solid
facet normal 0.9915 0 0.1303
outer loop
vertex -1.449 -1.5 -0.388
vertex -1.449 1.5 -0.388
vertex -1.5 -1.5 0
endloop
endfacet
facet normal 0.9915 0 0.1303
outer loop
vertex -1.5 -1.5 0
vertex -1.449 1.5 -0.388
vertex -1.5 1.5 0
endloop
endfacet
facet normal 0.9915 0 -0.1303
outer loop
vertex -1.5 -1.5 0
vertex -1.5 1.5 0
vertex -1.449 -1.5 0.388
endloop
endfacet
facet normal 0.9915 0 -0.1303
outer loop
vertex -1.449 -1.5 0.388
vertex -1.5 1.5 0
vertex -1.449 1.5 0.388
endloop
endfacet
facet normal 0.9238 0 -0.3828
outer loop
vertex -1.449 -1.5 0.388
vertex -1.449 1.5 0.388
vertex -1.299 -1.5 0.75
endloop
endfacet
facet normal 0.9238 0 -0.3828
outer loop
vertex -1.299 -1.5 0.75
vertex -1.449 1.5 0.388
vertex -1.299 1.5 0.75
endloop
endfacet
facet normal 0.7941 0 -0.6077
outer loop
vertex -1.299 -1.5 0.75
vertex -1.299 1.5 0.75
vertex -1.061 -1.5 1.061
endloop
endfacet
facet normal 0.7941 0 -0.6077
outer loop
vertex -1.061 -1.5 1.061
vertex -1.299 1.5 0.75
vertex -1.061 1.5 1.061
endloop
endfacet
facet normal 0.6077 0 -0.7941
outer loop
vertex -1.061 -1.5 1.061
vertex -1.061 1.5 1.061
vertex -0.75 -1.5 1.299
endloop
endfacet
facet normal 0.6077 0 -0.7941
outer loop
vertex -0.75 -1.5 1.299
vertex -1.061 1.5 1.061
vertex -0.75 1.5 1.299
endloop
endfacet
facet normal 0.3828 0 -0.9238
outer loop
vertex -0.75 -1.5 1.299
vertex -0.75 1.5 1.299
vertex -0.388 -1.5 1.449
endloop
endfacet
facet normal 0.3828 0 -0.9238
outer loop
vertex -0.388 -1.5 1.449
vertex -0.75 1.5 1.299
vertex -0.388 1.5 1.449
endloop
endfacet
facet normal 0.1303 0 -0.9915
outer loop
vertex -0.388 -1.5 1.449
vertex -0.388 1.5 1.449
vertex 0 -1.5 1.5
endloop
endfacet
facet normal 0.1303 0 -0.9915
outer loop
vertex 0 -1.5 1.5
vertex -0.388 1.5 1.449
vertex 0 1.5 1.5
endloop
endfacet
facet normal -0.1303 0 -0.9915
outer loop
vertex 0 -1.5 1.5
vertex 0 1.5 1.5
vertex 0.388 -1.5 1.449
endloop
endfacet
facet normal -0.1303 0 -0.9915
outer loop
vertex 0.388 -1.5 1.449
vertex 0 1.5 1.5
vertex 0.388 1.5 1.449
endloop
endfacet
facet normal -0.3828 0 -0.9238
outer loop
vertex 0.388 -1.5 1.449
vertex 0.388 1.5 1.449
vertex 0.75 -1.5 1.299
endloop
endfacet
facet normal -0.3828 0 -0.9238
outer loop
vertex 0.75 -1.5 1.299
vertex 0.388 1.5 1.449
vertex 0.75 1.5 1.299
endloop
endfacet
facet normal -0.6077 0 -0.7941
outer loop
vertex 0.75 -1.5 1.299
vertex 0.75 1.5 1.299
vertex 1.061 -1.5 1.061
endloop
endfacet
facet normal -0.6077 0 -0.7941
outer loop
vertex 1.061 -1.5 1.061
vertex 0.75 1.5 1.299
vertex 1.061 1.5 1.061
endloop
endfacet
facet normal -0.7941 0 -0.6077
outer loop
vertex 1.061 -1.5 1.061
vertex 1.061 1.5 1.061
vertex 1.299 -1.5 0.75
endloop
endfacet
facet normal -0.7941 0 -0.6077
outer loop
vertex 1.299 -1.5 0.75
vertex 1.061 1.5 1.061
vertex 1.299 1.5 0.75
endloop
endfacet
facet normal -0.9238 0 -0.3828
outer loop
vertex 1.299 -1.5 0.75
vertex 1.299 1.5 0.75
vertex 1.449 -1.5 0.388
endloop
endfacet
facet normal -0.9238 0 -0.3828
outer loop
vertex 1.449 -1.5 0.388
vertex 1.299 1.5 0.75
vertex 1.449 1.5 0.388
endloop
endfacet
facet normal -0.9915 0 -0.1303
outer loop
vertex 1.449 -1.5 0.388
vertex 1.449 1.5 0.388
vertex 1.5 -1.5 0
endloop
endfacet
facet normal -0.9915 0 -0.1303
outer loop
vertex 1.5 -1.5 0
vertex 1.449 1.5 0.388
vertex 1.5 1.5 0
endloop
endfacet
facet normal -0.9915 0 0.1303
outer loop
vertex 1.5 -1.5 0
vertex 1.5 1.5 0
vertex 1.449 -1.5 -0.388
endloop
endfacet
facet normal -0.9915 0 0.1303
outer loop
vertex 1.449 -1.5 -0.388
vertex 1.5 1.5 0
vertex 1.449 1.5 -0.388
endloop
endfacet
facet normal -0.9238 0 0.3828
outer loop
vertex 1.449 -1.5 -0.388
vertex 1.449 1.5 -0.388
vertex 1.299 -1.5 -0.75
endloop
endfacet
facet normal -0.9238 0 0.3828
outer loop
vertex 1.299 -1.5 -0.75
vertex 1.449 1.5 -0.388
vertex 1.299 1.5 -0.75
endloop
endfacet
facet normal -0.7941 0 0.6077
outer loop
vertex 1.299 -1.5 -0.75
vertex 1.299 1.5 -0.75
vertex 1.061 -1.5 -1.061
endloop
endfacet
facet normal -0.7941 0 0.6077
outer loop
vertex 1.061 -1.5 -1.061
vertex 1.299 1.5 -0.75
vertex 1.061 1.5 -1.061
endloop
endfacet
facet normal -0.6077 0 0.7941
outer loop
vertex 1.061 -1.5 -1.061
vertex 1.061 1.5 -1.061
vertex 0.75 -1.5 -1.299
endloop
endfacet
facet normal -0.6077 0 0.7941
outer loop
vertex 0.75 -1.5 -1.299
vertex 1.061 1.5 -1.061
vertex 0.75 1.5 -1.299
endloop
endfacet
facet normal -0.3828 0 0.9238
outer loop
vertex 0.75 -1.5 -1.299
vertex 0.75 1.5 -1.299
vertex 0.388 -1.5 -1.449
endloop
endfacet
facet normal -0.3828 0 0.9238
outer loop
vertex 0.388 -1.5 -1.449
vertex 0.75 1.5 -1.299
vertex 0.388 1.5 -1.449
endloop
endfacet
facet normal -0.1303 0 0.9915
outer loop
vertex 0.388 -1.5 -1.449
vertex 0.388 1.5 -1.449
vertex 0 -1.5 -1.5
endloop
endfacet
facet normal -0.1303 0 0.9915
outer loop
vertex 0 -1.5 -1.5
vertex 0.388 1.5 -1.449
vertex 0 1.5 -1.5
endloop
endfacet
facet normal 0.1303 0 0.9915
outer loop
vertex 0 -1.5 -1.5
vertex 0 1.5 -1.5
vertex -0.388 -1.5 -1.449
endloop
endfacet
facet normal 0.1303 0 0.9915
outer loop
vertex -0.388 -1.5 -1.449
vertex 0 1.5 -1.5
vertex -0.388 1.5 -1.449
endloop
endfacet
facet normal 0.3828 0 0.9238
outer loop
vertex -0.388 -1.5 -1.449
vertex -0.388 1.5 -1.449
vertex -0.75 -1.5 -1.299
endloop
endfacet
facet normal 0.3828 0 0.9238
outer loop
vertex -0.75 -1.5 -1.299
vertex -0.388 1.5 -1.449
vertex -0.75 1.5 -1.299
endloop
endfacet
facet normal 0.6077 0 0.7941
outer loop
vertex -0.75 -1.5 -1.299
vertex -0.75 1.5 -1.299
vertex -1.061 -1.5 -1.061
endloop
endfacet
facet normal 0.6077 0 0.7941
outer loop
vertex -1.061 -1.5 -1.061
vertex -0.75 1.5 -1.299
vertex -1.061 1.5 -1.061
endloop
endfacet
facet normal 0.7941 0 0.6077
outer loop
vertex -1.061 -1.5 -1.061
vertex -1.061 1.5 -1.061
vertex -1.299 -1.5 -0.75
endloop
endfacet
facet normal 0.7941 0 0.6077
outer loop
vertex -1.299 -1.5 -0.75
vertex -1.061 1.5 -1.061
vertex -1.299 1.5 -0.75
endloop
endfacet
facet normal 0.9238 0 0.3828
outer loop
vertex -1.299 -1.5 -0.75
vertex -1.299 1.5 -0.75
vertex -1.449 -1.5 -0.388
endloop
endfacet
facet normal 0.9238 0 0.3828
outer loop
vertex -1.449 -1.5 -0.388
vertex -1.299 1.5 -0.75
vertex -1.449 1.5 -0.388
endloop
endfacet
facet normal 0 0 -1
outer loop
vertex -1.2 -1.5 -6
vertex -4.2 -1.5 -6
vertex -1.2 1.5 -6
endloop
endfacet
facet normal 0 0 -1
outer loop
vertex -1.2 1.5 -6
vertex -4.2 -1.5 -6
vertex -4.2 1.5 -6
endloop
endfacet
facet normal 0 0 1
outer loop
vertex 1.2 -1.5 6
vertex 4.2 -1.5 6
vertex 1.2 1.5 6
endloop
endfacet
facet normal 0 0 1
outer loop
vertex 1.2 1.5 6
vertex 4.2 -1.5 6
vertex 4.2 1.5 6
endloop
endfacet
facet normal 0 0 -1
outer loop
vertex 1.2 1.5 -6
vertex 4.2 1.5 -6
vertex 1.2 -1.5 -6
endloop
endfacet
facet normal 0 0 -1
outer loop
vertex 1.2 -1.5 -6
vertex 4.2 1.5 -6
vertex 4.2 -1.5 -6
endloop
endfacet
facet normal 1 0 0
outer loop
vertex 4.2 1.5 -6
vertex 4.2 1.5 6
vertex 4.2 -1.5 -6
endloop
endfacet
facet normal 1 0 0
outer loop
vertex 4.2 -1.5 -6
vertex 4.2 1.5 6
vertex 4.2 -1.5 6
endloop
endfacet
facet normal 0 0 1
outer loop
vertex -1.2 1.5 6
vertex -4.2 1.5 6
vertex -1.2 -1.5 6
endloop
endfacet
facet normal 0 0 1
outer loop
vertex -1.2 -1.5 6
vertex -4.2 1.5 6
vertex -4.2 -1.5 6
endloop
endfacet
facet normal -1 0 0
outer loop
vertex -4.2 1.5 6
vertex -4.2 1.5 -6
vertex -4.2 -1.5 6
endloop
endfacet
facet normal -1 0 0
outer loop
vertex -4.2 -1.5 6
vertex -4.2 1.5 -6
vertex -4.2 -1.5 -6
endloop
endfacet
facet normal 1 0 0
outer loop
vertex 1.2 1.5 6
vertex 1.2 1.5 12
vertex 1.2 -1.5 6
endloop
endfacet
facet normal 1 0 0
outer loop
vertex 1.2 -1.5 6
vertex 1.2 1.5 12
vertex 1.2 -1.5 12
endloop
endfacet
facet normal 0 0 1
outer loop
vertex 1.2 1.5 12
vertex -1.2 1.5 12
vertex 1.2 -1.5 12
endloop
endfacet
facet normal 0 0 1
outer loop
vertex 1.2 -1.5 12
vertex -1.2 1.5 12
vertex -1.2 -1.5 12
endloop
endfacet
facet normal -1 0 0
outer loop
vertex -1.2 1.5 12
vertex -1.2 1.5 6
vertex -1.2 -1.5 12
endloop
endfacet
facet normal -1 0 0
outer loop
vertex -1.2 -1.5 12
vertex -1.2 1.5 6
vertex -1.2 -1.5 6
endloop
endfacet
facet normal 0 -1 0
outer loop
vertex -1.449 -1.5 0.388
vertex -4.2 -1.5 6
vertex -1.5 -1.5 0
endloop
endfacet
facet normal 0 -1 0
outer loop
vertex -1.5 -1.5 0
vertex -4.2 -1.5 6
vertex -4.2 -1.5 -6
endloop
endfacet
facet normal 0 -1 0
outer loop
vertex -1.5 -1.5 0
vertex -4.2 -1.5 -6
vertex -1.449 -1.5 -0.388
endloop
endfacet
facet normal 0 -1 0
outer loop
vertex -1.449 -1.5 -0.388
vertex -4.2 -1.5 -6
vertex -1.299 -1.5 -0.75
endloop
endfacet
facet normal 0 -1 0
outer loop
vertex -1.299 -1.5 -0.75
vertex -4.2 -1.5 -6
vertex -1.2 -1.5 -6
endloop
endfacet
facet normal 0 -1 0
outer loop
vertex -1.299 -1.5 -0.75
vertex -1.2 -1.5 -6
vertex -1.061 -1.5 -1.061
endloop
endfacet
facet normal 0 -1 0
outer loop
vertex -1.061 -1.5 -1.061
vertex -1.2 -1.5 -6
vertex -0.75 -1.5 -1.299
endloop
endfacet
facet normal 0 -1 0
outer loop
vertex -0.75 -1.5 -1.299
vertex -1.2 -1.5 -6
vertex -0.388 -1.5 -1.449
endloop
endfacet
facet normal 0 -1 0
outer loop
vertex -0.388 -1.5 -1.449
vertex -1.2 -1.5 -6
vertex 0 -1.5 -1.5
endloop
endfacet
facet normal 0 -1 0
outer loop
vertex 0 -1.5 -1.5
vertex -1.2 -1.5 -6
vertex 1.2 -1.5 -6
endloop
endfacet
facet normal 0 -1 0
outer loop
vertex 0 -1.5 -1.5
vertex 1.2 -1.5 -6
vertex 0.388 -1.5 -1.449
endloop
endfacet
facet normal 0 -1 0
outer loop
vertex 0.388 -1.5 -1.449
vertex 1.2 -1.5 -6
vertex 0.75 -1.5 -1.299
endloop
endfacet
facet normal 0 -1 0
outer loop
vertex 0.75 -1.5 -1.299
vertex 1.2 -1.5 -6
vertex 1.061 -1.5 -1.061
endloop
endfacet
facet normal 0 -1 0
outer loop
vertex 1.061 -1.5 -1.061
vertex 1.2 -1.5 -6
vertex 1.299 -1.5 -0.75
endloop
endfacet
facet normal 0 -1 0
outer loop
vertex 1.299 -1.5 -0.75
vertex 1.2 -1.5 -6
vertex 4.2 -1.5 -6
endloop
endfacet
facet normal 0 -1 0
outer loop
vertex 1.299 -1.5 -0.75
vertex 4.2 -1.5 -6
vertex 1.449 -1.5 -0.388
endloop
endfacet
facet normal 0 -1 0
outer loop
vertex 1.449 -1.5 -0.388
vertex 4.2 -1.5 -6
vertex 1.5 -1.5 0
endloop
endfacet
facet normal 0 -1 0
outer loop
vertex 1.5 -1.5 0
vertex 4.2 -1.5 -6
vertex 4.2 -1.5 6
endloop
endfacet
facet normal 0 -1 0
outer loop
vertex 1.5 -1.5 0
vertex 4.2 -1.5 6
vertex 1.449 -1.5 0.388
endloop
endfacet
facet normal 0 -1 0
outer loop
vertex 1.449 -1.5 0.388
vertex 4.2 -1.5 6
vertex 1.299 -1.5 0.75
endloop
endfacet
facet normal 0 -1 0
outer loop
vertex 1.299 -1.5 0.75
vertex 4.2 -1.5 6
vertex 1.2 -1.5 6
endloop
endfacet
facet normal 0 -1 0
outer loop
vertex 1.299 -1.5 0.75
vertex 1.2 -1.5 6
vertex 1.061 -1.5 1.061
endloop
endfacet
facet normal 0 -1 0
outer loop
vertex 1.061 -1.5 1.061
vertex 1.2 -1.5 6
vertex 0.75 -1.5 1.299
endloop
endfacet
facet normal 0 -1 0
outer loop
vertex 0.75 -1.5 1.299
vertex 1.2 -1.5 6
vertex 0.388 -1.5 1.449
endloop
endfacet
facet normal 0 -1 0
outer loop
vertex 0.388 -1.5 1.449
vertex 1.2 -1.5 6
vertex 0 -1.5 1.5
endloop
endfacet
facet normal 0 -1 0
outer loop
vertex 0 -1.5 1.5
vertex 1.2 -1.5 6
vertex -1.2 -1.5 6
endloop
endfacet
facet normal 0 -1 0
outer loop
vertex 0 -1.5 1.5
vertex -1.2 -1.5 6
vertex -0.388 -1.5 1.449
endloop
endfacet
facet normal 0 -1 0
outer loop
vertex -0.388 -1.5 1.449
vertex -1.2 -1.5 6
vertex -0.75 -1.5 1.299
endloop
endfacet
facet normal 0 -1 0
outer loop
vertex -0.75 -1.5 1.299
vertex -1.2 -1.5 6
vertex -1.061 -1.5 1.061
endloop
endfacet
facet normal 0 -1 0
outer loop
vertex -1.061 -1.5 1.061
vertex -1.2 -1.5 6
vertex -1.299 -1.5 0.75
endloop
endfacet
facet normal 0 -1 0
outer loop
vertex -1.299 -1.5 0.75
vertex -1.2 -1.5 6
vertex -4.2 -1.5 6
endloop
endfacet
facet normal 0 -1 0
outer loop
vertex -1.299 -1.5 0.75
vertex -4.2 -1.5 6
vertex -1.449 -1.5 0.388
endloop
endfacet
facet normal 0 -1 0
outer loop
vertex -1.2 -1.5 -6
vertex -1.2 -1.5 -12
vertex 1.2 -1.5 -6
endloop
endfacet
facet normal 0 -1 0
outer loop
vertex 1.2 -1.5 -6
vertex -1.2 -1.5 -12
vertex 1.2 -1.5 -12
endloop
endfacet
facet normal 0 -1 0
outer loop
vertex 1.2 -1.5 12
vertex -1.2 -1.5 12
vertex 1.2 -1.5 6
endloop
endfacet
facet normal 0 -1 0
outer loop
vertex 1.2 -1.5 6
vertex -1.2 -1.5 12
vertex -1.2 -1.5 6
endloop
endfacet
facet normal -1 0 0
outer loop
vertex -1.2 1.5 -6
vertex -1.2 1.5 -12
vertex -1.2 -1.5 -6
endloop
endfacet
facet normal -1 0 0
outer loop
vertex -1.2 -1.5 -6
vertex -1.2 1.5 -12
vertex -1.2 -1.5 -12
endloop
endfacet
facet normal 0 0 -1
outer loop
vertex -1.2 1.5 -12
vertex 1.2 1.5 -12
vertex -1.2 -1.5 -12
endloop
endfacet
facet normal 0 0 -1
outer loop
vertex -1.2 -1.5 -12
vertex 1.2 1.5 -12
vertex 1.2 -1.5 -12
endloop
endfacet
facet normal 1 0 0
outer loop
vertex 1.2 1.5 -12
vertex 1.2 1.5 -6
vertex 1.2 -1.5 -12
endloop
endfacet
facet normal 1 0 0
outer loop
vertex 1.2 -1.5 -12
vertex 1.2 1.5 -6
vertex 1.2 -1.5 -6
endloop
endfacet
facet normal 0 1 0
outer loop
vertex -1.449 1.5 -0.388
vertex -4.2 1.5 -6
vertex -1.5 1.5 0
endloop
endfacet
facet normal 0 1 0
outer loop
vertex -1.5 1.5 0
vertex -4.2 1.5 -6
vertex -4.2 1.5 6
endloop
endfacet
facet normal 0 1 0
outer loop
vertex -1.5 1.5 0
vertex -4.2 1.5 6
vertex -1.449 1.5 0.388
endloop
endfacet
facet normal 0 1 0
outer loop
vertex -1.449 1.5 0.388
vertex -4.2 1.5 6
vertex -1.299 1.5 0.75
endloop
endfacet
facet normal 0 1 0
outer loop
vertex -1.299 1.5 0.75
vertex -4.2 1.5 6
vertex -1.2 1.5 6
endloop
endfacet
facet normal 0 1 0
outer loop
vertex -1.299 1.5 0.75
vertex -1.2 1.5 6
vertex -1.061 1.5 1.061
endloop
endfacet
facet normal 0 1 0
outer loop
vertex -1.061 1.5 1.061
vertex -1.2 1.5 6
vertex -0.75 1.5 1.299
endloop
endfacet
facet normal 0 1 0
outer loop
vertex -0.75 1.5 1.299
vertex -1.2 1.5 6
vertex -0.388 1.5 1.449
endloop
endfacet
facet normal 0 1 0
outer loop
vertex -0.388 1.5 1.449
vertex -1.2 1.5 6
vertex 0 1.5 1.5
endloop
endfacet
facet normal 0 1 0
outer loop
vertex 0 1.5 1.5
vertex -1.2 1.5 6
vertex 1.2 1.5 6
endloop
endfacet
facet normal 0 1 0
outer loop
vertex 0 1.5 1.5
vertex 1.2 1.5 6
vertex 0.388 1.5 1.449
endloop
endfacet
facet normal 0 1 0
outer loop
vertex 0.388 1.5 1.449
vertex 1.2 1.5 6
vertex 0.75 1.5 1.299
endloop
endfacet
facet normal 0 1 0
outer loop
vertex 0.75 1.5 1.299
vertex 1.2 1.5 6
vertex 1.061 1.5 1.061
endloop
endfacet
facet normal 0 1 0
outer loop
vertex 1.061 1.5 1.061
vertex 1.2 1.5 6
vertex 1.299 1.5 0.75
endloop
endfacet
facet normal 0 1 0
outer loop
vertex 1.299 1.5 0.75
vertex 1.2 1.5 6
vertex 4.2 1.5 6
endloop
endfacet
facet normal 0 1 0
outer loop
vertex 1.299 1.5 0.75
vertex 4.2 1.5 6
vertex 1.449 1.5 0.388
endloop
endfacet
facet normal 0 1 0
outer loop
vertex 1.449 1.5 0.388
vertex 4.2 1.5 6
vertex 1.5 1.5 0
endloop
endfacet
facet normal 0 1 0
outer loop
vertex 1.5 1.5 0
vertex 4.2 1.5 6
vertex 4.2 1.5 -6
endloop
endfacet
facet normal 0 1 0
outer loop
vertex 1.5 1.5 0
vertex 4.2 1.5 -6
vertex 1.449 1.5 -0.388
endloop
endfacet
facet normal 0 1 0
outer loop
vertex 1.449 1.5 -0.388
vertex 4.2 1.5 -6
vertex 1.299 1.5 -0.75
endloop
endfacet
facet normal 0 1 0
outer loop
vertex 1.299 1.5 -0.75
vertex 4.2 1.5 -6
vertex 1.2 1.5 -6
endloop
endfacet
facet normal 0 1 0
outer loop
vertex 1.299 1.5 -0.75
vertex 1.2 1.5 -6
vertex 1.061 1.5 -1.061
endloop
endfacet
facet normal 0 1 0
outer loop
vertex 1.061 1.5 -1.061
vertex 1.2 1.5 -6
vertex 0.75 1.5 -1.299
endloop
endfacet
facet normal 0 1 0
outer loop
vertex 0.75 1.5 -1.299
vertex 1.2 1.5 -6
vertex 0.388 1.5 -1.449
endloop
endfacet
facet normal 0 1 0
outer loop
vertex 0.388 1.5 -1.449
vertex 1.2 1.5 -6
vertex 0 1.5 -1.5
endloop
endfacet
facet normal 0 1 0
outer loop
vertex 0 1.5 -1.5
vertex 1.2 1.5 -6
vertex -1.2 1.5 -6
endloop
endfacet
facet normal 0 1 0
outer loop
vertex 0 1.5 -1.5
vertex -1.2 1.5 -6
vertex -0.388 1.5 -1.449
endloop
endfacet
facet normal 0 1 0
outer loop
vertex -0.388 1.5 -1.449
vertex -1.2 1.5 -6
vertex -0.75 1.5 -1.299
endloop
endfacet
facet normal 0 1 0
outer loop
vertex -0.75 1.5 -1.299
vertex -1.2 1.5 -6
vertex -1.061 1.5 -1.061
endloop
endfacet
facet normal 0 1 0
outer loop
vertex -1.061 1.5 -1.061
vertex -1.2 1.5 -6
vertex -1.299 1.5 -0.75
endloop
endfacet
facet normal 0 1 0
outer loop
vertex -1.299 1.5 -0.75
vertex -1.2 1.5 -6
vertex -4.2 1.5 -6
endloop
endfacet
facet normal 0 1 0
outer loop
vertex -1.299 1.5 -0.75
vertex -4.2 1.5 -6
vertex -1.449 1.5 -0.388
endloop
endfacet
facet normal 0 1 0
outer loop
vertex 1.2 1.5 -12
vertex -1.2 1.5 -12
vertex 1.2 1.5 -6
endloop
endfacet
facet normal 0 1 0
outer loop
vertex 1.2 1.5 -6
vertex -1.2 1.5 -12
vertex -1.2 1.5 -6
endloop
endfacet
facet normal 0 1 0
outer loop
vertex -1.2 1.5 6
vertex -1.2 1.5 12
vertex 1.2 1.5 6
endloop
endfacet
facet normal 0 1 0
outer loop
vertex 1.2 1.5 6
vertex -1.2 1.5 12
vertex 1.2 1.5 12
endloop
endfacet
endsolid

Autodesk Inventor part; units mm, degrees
ref_plane "YZ Plane" through (0, 0, 0) normal (1, 0, 0) x (0, 1, 0)
ref_plane "XZ Plane" through (0, 0, 0) normal (0, 1, 0) x (-1, 0, 0)
ref_plane "XY Plane" through (0, 0, 0) normal (0, 0, 1) x (1, 0, 0)
sketch "草圖1" plane through (0, 0, 0) normal (0, 1, 0) x (-1, 0, 0)
  line L0 (4.2, 0) -> (4.2, -6)
  line L1 (4.2, -6) -> (0, -6)
  line L2 (0, -6) -> (1.2, -6)
  line L3 (1.2, -6) -> (1.2, -12)
  line L4 (1.2, -12) -> (0, -12)
  line L5 (-4.2, 0) -> (-4.2, -6)
  line L6 (-4.2, -6) -> (0, -6)
  line L7 (0, -6) -> (-1.2, -6)
  line L8 (-1.2, -6) -> (-1.2, -12)
  line L9 (-1.2, -12) -> (0, -12)
  line L10 (4.2, 0) -> (4.2, 6)
  line L11 (4.2, 6) -> (0, 6)
  line L12 (0, 6) -> (1.2, 6)
  line L13 (1.2, 6) -> (1.2, 12)
  line L14 (1.2, 12) -> (0, 12)
  line L15 (-4.2, 0) -> (-4.2, 6)
  line L16 (-4.2, 6) -> (0, 6)
  line L17 (0, 6) -> (-1.2, 6)
  line L18 (-1.2, 6) -> (-1.2, 12)
  line L19 (-1.2, 12) -> (0, 12)
  circle A0 centre (0, 0) radius 1.5
  dimension "d0" = 6
  dimension "d1" = 1.2
  dimension "d2" = 3
  dimension "d3" = 6
  dimension "d4" = 3
extrude "擠出1" add sketch "草圖1" along normal mid plane 3
properties part number "小零件1"
